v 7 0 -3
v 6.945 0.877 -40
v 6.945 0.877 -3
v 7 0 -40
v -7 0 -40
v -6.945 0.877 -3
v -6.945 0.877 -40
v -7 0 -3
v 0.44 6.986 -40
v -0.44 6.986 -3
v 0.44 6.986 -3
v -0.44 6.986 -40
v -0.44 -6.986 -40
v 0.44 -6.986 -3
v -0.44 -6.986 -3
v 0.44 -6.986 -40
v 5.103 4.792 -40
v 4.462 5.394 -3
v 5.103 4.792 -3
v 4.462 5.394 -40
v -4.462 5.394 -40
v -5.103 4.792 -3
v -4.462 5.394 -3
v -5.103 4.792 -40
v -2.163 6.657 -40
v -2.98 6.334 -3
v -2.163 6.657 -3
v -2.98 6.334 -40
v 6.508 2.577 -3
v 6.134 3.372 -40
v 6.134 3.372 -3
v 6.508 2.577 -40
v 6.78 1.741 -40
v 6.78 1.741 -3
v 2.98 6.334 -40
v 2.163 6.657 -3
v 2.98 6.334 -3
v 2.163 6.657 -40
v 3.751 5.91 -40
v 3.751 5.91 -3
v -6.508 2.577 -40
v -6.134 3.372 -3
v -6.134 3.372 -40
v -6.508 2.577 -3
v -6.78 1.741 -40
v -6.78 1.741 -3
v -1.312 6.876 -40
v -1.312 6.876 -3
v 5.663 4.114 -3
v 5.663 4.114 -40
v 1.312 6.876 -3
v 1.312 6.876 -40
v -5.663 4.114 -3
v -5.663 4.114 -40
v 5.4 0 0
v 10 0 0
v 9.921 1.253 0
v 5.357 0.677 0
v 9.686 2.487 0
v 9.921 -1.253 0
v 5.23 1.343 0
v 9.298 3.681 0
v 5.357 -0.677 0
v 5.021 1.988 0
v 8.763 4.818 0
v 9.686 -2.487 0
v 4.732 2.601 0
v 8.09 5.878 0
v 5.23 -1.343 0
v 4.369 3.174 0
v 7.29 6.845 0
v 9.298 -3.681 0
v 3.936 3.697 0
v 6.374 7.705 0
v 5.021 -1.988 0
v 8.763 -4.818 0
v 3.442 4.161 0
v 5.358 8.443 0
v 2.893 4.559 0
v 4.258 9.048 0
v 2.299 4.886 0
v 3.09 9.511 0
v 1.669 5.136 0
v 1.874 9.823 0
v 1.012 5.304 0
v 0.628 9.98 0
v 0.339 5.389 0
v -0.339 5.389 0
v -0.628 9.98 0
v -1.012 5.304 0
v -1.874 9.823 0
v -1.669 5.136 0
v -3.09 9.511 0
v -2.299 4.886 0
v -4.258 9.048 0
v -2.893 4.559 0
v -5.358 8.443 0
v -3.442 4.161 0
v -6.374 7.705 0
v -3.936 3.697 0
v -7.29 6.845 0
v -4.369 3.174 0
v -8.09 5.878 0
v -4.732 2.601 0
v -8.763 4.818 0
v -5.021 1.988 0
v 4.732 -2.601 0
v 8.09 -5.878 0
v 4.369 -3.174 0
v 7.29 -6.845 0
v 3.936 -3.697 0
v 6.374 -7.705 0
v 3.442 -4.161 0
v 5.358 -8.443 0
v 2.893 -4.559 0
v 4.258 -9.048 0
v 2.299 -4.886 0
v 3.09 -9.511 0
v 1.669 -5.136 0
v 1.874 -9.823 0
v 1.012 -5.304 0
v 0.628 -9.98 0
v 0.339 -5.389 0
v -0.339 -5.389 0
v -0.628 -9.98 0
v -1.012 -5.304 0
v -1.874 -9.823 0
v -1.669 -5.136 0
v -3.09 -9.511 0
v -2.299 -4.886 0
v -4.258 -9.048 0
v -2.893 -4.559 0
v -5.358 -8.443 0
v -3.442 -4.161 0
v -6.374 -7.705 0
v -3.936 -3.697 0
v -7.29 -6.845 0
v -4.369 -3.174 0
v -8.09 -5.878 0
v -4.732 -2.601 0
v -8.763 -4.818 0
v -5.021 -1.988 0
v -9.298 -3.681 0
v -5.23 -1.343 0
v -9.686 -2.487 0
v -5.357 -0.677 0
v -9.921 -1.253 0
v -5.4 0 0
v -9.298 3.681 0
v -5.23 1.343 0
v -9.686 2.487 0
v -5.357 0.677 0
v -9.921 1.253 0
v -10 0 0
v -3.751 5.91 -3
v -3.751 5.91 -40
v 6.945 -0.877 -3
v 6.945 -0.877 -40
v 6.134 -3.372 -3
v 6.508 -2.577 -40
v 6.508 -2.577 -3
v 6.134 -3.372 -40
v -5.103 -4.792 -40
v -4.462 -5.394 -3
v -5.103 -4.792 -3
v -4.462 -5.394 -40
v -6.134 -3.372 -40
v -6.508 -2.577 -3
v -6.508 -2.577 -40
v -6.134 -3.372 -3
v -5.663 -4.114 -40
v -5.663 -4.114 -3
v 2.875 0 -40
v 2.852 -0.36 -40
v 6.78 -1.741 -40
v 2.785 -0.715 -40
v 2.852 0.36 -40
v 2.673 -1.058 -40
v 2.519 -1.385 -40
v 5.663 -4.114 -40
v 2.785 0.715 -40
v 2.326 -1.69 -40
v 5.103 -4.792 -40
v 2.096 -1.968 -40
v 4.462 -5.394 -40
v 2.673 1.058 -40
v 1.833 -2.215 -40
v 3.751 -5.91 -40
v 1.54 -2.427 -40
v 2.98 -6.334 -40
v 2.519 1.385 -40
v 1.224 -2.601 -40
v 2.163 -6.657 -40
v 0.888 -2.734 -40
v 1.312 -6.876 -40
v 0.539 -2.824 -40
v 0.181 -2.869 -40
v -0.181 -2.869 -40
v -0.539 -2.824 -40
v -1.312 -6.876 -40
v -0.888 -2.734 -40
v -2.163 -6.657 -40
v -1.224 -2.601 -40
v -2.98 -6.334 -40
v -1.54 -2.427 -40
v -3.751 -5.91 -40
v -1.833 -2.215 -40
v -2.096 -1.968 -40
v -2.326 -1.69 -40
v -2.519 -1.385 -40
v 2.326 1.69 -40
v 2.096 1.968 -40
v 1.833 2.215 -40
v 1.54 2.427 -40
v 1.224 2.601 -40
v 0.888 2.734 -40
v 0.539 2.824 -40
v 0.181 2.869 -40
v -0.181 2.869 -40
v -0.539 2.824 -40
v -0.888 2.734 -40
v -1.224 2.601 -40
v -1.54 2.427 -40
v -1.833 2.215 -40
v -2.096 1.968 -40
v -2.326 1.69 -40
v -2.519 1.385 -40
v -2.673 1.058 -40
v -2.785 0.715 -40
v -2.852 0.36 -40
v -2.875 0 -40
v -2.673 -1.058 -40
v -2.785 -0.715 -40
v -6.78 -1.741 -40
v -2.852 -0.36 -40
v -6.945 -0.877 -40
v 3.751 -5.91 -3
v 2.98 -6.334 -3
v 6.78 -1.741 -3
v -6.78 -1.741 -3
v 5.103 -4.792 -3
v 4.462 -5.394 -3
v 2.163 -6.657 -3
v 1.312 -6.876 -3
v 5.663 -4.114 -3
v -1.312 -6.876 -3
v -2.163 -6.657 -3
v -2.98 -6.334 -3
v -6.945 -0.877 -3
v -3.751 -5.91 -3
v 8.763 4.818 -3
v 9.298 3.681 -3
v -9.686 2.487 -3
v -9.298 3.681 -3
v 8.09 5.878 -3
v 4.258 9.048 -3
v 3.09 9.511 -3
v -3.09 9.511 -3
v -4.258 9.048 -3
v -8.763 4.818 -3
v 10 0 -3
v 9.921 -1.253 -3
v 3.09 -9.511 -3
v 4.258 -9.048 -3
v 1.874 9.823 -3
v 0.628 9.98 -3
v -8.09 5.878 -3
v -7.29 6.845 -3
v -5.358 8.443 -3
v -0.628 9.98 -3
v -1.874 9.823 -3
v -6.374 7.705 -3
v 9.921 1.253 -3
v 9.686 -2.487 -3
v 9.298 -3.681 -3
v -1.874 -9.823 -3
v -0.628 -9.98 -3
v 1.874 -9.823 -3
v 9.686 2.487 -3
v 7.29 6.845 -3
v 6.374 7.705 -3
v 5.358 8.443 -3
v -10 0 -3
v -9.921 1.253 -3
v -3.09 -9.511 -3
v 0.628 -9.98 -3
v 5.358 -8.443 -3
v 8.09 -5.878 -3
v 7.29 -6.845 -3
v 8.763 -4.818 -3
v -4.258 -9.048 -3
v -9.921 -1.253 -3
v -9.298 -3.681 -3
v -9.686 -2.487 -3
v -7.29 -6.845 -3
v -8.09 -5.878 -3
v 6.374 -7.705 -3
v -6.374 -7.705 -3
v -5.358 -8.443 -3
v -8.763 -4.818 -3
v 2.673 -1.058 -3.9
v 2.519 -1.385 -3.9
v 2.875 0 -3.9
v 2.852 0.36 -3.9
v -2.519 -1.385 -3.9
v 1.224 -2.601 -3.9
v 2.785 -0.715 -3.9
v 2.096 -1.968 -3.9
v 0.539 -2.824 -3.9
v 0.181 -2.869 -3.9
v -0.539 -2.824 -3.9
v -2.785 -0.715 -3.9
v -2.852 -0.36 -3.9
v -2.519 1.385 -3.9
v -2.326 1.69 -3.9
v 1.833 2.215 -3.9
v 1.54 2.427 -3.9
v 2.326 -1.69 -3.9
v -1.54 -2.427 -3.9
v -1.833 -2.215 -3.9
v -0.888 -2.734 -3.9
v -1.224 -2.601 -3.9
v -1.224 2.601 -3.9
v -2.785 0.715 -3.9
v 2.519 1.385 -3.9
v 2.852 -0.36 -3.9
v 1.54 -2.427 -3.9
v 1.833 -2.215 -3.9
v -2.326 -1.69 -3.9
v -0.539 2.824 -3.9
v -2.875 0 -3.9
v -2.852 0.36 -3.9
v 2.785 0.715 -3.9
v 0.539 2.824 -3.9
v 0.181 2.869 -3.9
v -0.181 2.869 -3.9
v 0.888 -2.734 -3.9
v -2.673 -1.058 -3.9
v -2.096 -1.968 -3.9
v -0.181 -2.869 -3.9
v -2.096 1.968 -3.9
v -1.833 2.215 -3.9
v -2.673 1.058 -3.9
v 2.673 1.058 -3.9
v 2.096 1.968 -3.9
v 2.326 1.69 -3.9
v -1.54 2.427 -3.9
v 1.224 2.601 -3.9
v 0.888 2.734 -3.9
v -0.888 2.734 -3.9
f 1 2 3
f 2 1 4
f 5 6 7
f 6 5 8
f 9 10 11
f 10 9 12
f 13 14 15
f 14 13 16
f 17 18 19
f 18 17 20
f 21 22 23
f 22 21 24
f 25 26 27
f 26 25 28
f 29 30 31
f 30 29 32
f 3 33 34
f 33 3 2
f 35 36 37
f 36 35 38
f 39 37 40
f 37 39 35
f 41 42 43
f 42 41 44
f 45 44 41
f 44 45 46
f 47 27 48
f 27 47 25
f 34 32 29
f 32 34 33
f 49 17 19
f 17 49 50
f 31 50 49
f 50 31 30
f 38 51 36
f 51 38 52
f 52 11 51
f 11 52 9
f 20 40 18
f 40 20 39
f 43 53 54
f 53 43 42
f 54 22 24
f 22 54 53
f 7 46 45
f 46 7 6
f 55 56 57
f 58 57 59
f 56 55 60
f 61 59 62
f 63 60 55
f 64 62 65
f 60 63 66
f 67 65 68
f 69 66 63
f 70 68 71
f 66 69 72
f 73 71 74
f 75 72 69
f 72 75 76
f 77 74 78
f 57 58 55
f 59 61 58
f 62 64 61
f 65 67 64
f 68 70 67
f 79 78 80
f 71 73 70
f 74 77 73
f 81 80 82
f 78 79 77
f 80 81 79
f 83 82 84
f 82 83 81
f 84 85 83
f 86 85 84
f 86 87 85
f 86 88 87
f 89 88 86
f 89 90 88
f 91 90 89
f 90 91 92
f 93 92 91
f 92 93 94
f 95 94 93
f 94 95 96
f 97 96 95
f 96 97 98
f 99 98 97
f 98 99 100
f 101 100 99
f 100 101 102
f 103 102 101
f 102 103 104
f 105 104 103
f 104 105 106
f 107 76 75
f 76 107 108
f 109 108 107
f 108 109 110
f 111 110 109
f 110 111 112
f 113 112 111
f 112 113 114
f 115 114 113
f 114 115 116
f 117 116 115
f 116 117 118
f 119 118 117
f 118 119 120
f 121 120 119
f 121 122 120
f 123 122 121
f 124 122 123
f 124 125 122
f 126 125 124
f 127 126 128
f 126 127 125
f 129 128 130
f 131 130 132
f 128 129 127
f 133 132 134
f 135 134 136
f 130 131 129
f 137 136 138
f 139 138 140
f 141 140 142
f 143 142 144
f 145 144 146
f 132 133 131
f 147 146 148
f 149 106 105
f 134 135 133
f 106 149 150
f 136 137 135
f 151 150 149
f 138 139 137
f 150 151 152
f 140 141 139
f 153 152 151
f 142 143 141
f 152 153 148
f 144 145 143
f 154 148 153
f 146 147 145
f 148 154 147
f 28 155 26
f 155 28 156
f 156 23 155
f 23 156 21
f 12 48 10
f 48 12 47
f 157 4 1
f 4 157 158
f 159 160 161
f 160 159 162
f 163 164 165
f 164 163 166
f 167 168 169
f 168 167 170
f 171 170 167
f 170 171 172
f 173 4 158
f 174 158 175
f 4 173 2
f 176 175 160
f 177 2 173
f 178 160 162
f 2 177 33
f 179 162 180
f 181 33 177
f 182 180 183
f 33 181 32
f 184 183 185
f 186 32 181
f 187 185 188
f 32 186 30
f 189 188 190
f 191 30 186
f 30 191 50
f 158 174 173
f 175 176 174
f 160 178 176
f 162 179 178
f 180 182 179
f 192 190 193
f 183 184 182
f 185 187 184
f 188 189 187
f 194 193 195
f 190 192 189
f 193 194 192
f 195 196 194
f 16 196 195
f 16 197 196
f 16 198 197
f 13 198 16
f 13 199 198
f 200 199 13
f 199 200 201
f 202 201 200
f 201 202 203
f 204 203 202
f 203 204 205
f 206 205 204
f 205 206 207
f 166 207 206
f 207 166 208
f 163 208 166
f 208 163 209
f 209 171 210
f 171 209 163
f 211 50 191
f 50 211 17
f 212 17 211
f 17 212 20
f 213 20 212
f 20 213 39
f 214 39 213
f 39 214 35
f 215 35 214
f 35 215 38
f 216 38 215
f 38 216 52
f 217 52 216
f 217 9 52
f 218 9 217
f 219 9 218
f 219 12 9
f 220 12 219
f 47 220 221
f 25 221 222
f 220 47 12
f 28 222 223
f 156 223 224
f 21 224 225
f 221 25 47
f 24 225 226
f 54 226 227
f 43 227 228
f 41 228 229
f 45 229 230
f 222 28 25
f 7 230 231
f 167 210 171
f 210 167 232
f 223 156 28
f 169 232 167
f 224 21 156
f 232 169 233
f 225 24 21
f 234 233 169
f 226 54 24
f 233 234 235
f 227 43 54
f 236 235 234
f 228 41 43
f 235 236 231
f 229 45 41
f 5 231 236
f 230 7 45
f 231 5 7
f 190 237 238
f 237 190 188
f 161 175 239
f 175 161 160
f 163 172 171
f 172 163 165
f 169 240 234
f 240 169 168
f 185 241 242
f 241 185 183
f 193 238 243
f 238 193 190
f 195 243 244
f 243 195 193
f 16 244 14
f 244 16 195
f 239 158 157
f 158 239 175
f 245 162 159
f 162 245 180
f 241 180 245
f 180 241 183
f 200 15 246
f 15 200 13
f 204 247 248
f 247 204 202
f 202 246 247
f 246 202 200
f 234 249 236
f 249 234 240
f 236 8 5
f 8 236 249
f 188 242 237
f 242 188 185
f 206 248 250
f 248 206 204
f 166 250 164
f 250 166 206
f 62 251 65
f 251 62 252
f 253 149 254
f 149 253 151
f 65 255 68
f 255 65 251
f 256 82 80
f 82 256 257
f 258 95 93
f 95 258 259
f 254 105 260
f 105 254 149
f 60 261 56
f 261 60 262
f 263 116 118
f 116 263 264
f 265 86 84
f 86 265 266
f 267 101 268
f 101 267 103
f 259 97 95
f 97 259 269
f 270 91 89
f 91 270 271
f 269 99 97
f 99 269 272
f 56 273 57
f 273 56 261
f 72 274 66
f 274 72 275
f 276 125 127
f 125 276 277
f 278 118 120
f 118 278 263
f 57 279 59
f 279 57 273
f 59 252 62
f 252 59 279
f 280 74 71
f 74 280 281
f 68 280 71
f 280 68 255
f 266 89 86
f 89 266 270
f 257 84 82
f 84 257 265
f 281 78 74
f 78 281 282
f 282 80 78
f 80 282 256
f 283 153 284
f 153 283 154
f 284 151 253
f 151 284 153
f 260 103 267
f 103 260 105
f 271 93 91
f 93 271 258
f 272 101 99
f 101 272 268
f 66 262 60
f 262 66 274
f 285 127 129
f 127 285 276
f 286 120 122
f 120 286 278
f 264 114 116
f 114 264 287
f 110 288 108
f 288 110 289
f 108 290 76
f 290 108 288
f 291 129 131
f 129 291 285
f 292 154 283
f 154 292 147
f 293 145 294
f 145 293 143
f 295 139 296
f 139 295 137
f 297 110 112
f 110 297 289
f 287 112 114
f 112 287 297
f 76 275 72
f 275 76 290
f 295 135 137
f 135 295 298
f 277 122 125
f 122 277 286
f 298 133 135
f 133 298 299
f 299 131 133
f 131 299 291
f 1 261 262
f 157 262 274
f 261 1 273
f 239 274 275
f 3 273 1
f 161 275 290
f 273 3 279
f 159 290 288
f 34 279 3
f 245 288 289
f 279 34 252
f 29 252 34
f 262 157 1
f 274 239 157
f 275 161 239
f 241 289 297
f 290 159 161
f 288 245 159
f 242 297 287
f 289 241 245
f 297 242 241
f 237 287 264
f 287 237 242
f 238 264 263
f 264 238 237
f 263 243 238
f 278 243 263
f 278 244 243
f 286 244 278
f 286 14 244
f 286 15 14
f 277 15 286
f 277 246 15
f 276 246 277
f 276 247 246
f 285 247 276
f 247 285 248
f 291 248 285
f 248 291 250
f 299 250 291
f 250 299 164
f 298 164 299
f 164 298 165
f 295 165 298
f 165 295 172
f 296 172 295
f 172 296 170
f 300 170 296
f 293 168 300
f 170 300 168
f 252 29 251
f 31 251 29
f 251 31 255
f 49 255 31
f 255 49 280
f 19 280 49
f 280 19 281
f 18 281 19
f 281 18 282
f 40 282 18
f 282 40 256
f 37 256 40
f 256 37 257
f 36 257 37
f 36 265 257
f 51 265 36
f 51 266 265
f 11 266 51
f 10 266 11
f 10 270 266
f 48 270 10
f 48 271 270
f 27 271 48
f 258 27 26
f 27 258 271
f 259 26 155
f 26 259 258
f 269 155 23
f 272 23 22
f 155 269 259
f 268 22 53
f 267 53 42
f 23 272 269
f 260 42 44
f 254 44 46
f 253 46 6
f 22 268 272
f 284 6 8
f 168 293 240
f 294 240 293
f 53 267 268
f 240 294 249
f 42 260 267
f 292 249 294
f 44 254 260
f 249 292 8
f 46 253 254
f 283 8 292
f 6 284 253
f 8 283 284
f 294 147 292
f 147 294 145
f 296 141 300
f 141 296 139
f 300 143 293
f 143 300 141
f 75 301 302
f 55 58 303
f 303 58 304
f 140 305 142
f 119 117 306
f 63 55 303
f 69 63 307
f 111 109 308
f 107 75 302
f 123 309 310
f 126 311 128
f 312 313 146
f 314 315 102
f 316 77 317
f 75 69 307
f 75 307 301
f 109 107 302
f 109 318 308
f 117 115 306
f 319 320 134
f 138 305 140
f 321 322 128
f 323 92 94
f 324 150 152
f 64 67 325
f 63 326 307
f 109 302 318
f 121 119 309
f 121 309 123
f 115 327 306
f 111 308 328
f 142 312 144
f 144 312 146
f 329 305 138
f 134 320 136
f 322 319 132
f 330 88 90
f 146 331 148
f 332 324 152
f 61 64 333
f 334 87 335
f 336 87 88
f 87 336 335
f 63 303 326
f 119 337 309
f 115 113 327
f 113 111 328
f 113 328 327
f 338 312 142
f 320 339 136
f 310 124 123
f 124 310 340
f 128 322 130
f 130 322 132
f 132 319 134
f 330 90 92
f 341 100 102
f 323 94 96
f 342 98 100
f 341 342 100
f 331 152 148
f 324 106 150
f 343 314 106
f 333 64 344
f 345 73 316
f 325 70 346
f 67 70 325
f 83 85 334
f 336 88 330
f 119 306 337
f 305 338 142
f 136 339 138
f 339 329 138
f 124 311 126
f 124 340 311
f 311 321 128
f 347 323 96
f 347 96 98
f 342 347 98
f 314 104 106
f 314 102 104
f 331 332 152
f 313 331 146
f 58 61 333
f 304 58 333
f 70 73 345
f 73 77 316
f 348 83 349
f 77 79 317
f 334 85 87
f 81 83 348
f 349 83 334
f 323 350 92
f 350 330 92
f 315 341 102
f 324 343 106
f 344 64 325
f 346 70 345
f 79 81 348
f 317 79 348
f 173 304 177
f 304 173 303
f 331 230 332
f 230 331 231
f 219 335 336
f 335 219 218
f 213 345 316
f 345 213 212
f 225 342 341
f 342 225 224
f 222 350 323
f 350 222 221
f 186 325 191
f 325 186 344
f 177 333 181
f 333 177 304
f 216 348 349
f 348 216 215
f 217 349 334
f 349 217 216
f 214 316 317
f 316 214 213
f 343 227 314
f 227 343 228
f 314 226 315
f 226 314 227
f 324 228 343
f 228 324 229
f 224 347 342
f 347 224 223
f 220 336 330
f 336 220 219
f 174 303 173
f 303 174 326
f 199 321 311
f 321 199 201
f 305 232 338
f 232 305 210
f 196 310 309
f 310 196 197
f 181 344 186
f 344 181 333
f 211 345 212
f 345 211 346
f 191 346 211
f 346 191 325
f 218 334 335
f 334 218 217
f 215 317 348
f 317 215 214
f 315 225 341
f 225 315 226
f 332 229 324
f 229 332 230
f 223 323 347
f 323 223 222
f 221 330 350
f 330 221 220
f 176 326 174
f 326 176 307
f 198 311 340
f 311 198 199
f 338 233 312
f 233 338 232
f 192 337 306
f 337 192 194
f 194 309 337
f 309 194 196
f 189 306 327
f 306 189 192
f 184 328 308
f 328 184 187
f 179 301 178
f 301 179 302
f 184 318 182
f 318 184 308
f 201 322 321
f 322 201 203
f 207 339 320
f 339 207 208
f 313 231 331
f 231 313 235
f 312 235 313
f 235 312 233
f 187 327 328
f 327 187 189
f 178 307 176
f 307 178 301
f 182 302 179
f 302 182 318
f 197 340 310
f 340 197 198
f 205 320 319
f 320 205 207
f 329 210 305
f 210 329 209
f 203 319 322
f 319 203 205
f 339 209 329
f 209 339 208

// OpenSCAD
$fn = 50;


difference() {
	union() {
		translate(v = [0, 0, -40.0000000000]) {
			cylinder(h = 40, r = 7.0000000000);
		}
		translate(v = [0, 0, -3.0000000000]) {
			cylinder(h = 3, r = 10.0000000000);
		}
	}
	union() {
		translate(v = [0, 0, 0]) {
			rotate(a = [0, 0, 0]) {
				difference() {
					union() {
						#translate(v = [0, 0, -40.0000000000]) {
							cylinder(h = 40, r = 2.6000000000);
						}
						#translate(v = [0, 0, -3.9000000000]) {
							cylinder(h = 3.9000000000, r = 7.0000000000, r1 = 2.8750000000, r2 = 5.4000000000);
						}
						#translate(v = [0, 0, -40.0000000000]) {
							cylinder(h = 40, r = 2.8750000000);
						}
						#translate(v = [0, 0, -40.0000000000]) {
							cylinder(h = 40, r = 2.6000000000);
						}
					}
					union();
				}
			}
		}
	}
}
